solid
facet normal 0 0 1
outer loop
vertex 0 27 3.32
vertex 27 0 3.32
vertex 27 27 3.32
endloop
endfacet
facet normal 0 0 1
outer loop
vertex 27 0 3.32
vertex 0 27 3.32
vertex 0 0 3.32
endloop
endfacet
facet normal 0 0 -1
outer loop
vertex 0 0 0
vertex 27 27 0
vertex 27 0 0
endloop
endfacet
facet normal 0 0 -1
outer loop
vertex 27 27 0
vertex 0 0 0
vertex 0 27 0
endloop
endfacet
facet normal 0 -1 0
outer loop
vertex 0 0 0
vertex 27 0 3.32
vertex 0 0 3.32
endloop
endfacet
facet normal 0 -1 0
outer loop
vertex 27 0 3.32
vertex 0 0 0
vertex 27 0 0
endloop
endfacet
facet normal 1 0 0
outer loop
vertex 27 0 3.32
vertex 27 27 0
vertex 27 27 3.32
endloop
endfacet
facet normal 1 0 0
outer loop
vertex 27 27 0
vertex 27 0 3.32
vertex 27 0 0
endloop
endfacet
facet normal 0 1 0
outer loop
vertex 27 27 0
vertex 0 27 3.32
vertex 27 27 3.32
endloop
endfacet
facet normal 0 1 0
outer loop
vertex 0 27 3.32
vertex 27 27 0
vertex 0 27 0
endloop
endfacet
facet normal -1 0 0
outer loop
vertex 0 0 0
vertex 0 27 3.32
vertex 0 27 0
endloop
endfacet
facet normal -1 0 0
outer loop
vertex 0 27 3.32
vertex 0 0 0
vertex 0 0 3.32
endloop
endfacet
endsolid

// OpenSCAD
/* Warning, this is a very basic generator with a lot of approximation 
input data : [BBGA, CLC, 27x27x3.32mm, 672, , A, C04-25209A]
generated by com.zoubworld.electronics.cad.model3d.Basic
Date : Sun Feb 15 10:50:49 CET 2026
*/

//body
color("black")
translate([0,0,0])
cube([27.0,27.0,3.32], center=false);
